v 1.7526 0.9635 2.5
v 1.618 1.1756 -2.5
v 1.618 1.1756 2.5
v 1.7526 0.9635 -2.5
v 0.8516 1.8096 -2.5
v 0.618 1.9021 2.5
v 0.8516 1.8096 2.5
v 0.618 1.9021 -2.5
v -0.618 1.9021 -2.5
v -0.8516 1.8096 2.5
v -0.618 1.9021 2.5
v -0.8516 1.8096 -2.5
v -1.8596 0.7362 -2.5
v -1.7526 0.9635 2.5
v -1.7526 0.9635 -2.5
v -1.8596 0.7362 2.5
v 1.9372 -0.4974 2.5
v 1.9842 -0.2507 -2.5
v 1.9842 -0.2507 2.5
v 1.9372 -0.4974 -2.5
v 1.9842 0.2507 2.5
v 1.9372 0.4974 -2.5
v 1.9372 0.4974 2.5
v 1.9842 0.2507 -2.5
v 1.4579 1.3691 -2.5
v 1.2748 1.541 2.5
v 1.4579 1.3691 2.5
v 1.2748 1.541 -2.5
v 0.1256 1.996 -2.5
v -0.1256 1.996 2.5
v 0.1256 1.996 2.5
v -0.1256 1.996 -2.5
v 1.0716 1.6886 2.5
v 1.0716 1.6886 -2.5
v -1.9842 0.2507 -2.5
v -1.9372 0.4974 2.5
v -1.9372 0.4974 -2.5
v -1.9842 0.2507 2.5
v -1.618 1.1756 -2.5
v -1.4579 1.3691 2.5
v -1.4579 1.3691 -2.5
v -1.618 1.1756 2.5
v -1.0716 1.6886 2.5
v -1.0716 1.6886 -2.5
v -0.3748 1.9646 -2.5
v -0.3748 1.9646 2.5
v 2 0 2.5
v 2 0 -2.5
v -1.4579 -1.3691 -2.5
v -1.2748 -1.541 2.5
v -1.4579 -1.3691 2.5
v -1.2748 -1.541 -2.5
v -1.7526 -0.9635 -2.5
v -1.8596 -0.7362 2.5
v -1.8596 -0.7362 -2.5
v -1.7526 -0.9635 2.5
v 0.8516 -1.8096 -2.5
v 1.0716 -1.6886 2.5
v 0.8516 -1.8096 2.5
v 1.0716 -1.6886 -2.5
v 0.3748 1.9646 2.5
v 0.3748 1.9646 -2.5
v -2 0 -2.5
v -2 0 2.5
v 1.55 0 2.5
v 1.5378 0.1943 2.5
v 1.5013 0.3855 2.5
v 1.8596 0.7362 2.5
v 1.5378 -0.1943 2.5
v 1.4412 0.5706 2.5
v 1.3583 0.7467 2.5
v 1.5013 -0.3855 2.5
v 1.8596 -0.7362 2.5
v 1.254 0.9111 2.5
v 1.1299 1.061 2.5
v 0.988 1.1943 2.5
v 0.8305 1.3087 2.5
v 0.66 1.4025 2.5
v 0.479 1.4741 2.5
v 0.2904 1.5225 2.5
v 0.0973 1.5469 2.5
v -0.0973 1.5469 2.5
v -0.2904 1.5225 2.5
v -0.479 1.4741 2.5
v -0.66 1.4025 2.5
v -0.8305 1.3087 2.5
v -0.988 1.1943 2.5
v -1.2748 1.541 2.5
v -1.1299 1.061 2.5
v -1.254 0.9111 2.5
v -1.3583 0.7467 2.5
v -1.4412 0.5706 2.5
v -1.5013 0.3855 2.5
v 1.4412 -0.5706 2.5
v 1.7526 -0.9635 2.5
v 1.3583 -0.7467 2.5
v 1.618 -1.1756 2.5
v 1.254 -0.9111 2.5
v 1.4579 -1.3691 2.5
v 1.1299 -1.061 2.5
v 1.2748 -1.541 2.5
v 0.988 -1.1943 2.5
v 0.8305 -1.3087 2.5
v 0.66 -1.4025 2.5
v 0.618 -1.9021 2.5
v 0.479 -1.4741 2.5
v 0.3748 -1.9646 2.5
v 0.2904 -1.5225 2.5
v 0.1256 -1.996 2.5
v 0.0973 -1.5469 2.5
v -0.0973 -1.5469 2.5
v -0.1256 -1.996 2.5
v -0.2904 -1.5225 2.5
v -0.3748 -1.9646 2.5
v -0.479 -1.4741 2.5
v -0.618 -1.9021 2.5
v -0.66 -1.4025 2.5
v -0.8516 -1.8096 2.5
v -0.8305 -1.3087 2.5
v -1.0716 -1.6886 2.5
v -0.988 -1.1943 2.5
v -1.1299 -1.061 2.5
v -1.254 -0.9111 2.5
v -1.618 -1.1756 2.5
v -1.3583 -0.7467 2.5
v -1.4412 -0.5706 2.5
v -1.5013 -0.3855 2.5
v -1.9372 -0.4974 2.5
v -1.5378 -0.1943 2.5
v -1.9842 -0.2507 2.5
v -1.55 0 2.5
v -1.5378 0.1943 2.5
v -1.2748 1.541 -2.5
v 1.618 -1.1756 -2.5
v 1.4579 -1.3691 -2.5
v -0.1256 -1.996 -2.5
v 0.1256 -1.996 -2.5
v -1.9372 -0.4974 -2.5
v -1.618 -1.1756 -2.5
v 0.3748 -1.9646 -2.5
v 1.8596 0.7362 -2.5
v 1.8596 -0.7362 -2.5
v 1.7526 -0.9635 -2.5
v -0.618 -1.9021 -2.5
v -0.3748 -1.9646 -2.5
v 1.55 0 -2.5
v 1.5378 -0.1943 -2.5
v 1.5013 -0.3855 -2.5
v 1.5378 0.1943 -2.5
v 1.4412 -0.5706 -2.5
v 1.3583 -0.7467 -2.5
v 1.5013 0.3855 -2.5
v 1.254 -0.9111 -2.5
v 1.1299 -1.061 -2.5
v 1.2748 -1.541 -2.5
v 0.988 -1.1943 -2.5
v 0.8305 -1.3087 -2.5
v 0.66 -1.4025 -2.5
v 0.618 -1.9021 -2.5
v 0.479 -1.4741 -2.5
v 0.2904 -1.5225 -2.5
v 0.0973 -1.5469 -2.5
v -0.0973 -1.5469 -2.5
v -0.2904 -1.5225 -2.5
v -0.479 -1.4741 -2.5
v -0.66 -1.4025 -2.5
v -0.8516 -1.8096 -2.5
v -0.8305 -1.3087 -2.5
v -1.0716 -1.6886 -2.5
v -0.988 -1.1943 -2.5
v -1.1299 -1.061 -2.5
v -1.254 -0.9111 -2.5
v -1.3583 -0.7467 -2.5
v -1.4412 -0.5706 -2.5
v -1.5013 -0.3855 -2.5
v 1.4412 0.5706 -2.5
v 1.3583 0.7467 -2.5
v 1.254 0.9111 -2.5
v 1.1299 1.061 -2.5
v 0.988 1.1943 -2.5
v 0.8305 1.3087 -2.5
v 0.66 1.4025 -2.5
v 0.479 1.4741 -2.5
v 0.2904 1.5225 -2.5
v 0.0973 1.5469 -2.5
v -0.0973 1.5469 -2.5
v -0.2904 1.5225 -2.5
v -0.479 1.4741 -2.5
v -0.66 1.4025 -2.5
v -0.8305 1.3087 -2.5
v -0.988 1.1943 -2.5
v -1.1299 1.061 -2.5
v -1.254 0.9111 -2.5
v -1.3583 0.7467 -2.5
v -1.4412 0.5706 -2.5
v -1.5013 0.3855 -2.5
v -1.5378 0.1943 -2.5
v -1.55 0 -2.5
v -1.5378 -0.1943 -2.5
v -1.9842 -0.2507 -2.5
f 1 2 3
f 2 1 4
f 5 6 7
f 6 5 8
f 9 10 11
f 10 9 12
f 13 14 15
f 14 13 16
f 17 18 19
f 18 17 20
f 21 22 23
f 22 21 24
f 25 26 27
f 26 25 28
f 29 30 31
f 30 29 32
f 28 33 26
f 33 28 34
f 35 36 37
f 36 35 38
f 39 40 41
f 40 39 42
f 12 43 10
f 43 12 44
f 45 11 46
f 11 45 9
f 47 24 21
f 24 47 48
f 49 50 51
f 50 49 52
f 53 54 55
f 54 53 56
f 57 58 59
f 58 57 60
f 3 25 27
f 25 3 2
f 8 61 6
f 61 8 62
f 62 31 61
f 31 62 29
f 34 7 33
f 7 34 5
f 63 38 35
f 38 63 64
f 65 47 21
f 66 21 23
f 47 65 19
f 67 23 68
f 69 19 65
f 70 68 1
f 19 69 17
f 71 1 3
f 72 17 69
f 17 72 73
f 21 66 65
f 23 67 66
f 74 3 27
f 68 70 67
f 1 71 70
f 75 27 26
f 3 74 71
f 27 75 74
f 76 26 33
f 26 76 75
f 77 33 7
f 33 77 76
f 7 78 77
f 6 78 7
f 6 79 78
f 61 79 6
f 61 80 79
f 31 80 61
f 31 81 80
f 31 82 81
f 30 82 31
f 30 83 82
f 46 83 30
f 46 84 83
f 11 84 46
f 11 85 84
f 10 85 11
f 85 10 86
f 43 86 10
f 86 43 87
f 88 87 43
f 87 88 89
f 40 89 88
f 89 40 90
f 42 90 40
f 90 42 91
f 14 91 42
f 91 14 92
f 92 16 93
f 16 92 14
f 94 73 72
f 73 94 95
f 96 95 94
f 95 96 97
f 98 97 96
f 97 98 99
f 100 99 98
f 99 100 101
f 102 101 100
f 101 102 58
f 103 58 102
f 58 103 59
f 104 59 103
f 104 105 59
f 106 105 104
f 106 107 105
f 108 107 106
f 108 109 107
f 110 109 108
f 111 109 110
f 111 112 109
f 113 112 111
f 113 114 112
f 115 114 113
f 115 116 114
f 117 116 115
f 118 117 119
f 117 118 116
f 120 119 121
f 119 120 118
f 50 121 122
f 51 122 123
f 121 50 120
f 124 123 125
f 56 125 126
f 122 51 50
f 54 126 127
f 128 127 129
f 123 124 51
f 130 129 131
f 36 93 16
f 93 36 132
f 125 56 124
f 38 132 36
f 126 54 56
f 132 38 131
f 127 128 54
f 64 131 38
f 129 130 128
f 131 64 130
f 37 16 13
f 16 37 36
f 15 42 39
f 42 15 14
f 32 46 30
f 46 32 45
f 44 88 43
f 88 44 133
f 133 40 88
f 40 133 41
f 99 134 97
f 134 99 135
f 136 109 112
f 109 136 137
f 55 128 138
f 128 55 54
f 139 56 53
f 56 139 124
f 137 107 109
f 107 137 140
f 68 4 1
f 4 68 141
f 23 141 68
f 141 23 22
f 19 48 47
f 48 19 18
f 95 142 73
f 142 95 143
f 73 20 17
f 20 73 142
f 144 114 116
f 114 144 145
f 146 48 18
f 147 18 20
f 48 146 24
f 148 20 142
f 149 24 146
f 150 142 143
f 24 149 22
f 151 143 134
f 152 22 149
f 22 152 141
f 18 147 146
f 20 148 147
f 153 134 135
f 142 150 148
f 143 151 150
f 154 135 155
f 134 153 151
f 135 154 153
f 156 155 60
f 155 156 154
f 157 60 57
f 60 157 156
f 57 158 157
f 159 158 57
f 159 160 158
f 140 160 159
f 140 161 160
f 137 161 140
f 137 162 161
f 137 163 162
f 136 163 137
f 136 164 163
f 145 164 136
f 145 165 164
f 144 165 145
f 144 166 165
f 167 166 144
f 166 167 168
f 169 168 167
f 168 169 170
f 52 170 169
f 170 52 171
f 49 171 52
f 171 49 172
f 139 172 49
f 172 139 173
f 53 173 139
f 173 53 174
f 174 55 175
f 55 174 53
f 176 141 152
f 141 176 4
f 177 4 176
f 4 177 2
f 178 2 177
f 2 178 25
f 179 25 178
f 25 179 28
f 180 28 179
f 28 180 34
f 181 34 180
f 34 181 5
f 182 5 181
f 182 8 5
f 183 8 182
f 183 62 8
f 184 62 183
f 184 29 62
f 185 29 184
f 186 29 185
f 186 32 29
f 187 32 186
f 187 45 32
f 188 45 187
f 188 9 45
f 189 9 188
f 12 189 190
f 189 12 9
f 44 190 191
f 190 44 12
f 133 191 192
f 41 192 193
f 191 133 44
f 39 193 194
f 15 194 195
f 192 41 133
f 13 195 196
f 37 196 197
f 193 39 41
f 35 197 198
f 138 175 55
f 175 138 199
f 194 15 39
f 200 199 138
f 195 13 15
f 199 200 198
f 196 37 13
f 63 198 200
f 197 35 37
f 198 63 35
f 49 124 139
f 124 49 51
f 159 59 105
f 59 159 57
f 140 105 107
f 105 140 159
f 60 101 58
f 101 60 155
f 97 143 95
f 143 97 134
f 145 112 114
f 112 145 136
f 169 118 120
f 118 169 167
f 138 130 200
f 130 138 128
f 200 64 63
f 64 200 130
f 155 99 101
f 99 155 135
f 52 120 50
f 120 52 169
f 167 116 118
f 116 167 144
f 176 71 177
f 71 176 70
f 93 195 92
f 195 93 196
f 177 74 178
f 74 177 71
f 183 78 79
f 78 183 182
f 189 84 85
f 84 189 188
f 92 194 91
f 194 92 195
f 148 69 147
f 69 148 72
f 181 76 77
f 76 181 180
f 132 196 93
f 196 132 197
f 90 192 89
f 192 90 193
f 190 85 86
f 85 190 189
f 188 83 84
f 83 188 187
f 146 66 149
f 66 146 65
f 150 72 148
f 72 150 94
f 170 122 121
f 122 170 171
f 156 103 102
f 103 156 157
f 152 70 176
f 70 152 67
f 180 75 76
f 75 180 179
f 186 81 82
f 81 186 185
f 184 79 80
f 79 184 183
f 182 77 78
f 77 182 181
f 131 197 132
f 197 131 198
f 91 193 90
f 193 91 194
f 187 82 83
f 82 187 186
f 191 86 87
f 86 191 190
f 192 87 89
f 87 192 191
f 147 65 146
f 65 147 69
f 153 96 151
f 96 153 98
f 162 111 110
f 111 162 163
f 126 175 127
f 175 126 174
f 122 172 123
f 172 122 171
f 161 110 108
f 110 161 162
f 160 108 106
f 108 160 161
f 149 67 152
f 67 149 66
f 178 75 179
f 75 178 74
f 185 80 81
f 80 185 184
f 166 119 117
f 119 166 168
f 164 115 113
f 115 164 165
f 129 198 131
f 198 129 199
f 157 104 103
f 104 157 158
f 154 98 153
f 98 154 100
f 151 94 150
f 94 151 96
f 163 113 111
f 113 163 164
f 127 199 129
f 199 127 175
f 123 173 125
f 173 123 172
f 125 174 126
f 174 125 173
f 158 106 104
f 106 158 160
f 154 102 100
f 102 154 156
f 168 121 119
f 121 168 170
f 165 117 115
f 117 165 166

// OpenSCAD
$fn = 50;


difference() {
	union() {
		translate(v = [0, 0, -2.5000000000]) {
			cylinder(h = 5, r = 2.0000000000);
		}
	}
	union() {
		translate(v = [0, 0, -100.0000000000]) {
			cylinder(h = 200, r = 1.5500000000);
		}
	}
}
